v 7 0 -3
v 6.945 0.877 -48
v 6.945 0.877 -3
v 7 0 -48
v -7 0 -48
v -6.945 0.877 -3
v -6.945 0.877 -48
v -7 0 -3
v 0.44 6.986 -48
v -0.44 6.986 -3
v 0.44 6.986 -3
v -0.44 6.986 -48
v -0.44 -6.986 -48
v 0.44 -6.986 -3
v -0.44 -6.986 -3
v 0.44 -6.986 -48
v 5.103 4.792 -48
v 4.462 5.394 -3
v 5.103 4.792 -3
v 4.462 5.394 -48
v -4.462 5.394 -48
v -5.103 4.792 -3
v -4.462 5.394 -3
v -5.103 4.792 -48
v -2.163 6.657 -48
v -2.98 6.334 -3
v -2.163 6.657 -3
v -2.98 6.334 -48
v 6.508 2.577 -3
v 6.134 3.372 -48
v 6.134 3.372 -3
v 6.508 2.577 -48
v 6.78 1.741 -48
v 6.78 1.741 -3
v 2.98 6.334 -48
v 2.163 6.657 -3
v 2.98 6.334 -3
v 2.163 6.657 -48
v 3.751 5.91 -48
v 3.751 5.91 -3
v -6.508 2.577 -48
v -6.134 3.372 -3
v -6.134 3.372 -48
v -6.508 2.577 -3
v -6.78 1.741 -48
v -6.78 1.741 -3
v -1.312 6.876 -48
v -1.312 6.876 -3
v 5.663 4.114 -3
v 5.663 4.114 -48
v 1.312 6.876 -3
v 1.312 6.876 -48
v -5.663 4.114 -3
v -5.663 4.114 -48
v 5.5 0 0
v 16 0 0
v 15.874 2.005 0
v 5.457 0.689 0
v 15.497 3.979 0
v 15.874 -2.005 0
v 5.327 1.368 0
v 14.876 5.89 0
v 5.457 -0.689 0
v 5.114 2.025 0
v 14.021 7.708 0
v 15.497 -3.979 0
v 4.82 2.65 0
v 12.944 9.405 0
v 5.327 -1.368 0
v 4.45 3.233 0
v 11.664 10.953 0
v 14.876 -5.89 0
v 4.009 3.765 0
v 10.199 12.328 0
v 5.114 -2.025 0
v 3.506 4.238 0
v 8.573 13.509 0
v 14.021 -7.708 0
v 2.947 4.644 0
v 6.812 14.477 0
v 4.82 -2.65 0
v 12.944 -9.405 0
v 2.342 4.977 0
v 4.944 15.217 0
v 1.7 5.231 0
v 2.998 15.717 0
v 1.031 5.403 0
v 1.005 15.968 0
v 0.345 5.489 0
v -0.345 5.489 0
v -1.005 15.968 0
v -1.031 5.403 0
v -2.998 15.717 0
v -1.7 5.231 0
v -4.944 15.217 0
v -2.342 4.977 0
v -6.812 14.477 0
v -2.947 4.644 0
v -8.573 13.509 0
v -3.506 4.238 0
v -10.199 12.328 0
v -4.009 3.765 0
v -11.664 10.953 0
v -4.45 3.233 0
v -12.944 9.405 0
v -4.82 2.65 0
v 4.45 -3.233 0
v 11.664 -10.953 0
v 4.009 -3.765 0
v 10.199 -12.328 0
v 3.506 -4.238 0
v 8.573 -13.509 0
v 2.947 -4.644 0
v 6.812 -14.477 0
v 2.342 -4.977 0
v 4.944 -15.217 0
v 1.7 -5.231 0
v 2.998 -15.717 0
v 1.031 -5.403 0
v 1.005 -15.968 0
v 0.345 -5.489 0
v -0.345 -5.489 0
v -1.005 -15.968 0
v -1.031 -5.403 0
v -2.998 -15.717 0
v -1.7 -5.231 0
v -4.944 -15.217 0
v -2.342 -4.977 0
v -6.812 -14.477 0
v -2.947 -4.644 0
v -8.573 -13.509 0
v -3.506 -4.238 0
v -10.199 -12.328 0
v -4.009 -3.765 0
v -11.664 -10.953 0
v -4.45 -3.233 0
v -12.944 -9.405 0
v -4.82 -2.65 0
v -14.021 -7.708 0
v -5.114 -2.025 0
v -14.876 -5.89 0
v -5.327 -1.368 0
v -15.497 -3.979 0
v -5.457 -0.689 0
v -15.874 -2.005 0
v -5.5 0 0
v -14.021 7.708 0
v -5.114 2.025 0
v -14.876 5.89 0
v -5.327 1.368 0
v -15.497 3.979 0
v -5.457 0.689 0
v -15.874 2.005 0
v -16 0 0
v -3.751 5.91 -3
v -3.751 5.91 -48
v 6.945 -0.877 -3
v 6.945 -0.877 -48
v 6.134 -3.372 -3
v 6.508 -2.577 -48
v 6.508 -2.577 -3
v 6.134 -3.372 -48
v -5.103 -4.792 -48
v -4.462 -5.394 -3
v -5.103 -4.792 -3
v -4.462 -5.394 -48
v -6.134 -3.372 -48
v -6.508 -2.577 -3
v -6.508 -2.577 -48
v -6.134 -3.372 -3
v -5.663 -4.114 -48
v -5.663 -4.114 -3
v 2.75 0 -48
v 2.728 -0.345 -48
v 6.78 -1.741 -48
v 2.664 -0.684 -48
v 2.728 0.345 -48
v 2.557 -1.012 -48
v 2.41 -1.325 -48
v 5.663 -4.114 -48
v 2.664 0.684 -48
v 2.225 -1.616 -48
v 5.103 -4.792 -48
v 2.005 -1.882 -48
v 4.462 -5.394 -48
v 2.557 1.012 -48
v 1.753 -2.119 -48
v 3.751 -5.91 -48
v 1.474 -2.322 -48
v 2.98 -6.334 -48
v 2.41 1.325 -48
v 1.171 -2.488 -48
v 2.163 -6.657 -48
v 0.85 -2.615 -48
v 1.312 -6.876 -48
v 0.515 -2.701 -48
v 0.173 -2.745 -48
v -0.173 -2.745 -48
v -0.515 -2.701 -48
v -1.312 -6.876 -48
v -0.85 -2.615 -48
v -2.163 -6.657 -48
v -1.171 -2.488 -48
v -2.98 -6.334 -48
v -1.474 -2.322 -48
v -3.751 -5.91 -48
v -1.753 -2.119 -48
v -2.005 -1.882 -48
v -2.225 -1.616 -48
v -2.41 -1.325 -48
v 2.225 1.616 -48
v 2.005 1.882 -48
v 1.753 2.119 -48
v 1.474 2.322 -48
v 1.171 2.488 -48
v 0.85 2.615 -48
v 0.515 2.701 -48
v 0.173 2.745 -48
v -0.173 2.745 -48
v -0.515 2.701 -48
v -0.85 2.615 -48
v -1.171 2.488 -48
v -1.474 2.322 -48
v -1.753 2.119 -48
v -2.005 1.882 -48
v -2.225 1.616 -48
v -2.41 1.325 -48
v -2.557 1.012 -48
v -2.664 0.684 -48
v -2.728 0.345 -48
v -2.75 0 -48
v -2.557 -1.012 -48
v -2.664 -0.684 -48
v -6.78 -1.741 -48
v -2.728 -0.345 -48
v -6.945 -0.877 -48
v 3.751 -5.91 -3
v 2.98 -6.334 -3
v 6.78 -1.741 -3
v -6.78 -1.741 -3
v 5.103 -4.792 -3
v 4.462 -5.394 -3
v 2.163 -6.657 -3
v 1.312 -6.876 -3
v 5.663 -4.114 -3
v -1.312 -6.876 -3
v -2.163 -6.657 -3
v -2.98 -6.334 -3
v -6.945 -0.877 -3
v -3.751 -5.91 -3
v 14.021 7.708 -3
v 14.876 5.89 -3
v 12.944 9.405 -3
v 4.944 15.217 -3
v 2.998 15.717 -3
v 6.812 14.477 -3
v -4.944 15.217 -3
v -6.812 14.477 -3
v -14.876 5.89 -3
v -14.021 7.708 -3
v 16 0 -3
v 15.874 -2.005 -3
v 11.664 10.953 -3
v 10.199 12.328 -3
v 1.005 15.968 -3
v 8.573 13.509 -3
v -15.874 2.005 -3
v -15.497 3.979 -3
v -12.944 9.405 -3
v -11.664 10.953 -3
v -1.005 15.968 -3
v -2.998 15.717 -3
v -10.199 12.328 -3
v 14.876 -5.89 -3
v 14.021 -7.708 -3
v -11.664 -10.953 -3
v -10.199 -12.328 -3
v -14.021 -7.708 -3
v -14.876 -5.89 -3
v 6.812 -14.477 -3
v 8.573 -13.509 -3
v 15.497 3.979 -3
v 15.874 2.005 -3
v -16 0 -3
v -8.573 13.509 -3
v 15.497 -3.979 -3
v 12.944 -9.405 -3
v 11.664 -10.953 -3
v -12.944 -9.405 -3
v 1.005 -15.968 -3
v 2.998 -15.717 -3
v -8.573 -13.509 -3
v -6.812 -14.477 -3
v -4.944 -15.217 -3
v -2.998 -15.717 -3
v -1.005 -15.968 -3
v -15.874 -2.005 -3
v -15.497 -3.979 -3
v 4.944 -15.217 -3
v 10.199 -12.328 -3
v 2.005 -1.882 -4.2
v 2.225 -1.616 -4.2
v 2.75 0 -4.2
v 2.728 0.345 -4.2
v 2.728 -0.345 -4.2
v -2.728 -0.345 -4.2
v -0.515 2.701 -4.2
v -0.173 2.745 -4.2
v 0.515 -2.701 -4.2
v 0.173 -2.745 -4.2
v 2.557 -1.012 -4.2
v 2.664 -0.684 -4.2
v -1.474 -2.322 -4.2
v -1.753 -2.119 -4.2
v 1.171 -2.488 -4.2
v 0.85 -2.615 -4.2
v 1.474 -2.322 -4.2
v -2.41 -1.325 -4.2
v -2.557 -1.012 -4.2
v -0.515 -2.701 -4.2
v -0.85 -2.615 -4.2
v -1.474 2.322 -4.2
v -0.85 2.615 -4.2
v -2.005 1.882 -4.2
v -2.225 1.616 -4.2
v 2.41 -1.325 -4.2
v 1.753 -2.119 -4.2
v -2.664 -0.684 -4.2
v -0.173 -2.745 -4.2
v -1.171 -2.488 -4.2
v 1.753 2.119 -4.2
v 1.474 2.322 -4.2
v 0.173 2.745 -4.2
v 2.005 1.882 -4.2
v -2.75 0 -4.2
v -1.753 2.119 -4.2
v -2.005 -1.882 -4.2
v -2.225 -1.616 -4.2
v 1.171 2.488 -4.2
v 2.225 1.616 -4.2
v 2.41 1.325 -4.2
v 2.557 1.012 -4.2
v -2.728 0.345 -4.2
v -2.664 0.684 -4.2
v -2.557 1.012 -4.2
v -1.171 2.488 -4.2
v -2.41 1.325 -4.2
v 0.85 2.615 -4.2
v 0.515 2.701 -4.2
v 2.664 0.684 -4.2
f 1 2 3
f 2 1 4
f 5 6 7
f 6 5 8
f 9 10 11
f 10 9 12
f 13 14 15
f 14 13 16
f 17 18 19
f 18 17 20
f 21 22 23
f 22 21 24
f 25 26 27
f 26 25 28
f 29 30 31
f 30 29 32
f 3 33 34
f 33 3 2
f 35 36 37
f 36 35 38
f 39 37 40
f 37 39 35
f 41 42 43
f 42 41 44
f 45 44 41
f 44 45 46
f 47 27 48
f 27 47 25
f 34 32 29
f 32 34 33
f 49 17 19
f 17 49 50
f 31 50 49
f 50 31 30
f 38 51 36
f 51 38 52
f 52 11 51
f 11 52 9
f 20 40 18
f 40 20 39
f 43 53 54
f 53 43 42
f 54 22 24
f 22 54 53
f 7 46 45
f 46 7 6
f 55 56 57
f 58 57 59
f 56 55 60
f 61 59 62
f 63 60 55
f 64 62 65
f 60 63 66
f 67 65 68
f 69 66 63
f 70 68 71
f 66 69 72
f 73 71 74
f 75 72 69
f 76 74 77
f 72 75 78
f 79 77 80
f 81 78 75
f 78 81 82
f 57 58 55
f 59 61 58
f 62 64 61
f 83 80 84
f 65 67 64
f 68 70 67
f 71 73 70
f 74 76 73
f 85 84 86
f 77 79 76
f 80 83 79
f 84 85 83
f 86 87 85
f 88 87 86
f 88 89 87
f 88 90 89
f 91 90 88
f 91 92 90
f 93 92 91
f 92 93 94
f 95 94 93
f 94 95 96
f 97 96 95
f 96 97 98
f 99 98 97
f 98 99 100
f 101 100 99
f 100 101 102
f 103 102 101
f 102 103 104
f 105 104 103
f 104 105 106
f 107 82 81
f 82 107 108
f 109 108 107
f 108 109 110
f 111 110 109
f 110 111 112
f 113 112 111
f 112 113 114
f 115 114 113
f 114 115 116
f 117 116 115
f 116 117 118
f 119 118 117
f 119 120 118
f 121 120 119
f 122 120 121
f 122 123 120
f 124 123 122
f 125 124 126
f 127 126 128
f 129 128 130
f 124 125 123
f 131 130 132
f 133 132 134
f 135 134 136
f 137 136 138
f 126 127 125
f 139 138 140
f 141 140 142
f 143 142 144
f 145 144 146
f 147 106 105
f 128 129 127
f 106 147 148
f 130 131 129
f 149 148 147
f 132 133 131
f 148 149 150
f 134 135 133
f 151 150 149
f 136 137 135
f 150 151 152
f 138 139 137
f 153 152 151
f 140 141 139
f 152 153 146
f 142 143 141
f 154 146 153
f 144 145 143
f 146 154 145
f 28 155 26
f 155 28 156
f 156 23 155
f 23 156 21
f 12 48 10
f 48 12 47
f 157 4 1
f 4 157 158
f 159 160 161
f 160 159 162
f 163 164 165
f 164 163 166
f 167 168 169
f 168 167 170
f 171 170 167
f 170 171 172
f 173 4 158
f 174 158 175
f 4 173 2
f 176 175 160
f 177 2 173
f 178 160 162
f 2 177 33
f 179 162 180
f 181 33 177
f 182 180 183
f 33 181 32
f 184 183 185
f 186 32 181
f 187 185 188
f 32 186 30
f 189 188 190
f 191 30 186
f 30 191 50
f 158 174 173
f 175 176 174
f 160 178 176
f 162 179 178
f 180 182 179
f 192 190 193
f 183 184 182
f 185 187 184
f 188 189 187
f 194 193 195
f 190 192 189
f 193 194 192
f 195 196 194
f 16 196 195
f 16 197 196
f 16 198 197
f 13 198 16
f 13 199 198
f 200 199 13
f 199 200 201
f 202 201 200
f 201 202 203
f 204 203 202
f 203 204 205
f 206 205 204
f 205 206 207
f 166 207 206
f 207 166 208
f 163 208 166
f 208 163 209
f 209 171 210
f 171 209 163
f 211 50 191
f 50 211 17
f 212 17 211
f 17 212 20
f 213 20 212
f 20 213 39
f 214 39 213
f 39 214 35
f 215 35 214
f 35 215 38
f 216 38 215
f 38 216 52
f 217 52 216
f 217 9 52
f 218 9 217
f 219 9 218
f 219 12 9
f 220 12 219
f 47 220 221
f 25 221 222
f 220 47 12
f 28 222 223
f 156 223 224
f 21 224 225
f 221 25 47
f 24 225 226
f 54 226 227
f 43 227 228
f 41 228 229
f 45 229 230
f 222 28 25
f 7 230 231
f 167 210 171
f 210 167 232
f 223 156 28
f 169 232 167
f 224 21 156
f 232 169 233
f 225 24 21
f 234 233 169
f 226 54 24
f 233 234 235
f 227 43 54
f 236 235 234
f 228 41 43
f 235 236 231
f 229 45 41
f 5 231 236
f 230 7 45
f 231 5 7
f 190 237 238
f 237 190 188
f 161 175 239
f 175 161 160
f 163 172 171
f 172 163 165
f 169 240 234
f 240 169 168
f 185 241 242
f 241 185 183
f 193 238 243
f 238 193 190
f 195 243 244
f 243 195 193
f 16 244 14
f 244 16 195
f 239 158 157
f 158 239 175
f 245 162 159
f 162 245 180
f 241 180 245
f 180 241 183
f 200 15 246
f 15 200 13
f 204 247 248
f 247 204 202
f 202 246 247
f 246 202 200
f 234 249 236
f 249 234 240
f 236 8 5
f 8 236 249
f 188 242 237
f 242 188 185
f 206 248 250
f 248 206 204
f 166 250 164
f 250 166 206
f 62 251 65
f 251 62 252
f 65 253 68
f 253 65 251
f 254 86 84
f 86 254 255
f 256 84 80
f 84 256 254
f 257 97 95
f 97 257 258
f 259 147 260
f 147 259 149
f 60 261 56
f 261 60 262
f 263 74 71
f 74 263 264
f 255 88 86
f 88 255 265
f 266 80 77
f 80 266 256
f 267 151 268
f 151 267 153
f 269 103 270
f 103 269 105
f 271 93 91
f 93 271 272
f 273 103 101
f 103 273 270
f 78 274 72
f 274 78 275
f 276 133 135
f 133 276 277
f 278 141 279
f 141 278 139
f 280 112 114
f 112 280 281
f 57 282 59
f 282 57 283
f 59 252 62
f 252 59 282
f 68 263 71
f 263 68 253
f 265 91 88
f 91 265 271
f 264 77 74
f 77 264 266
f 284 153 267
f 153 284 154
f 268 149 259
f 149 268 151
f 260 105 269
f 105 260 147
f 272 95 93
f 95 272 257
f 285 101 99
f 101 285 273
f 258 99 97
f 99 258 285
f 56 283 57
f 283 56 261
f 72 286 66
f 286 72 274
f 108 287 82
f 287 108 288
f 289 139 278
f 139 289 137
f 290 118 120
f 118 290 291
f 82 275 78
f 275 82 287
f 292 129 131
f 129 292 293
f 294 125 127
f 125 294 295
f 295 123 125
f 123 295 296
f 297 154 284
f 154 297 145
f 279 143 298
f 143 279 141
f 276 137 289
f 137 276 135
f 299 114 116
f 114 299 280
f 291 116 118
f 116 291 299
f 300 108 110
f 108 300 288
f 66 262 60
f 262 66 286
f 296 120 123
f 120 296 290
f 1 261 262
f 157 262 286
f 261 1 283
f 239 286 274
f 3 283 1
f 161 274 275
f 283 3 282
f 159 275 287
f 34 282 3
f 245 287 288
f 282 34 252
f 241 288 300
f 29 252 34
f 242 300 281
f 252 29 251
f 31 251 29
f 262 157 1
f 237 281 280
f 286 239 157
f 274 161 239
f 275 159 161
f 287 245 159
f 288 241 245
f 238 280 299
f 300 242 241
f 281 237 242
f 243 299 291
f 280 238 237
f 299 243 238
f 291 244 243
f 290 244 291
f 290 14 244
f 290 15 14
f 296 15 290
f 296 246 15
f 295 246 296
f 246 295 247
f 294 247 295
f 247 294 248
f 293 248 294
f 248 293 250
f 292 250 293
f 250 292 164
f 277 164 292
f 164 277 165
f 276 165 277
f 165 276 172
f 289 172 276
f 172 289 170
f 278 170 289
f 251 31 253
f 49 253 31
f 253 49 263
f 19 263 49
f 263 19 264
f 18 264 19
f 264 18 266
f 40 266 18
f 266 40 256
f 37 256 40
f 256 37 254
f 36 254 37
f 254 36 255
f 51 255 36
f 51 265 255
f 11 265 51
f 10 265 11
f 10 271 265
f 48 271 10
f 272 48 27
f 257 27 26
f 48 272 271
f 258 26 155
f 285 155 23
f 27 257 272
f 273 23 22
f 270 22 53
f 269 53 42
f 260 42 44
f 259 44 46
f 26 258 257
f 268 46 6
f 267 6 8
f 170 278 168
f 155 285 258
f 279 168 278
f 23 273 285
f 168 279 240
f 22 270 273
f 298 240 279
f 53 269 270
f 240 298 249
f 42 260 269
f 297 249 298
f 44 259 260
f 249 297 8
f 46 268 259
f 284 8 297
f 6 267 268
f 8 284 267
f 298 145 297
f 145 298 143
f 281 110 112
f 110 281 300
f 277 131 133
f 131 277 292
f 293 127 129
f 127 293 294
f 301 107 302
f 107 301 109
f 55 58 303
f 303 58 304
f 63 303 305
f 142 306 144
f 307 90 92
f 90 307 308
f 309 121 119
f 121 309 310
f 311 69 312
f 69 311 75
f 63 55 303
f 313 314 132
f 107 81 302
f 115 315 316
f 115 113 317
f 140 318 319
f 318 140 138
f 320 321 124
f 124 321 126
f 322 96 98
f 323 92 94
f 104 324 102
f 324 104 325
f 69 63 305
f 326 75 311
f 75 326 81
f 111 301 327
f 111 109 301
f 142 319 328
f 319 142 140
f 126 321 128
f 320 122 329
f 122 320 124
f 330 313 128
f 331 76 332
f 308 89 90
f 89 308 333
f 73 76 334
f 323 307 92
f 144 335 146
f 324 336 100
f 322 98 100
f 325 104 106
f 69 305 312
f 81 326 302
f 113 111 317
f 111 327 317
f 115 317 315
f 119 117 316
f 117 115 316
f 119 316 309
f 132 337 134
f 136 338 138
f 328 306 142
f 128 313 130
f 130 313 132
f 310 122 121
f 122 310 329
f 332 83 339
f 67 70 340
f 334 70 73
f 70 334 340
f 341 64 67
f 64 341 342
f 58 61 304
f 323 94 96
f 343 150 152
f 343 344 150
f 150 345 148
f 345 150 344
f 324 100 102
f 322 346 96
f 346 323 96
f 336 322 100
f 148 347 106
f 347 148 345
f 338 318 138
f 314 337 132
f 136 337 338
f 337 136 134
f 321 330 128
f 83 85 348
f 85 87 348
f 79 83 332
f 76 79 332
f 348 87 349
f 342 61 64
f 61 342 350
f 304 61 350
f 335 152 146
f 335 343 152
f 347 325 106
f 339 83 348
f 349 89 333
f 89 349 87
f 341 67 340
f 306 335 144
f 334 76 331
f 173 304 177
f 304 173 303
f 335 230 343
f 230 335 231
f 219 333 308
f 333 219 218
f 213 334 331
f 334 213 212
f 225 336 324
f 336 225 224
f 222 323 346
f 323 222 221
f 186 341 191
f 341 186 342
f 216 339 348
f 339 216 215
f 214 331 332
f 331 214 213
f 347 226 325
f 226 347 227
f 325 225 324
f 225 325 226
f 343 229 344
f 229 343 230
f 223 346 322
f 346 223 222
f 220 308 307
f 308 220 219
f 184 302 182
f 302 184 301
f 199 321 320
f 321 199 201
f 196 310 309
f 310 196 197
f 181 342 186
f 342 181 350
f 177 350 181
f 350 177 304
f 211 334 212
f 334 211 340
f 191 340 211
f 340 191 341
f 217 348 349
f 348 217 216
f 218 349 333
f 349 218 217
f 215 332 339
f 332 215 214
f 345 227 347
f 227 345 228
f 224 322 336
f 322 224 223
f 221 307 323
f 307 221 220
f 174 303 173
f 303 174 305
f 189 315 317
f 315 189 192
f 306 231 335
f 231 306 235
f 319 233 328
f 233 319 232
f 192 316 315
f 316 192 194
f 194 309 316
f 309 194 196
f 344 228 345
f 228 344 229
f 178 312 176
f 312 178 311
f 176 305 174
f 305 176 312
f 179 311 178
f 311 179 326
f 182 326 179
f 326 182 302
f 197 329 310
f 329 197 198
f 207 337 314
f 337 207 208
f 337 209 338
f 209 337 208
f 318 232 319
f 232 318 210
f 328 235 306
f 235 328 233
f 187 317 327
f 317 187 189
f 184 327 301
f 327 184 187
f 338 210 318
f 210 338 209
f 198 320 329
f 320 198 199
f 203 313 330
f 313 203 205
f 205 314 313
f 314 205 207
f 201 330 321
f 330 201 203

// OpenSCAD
$fn = 50;


difference() {
	union() {
		translate(v = [0, 0, -48.0000000000]) {
			cylinder(h = 48, r = 7.0000000000);
		}
		translate(v = [0, 0, -3.0000000000]) {
			cylinder(h = 3, r = 16.0000000000);
		}
	}
	union() {
		translate(v = [0, 0, 0]) {
			rotate(a = [0, 0, 0]) {
				difference() {
					union() {
						#translate(v = [0, 0, -48.0000000000]) {
							cylinder(h = 48, r = 2.2500000000);
						}
						#translate(v = [0, 0, -4.2000000000]) {
							cylinder(h = 4.2000000000, r = 7.0000000000, r1 = 2.7500000000, r2 = 5.5000000000);
						}
						#translate(v = [0, 0, -48.0000000000]) {
							cylinder(h = 48, r = 2.7500000000);
						}
						#translate(v = [0, 0, -48.0000000000]) {
							cylinder(h = 48, r = 2.2500000000);
						}
					}
					union();
				}
			}
		}
	}
}
